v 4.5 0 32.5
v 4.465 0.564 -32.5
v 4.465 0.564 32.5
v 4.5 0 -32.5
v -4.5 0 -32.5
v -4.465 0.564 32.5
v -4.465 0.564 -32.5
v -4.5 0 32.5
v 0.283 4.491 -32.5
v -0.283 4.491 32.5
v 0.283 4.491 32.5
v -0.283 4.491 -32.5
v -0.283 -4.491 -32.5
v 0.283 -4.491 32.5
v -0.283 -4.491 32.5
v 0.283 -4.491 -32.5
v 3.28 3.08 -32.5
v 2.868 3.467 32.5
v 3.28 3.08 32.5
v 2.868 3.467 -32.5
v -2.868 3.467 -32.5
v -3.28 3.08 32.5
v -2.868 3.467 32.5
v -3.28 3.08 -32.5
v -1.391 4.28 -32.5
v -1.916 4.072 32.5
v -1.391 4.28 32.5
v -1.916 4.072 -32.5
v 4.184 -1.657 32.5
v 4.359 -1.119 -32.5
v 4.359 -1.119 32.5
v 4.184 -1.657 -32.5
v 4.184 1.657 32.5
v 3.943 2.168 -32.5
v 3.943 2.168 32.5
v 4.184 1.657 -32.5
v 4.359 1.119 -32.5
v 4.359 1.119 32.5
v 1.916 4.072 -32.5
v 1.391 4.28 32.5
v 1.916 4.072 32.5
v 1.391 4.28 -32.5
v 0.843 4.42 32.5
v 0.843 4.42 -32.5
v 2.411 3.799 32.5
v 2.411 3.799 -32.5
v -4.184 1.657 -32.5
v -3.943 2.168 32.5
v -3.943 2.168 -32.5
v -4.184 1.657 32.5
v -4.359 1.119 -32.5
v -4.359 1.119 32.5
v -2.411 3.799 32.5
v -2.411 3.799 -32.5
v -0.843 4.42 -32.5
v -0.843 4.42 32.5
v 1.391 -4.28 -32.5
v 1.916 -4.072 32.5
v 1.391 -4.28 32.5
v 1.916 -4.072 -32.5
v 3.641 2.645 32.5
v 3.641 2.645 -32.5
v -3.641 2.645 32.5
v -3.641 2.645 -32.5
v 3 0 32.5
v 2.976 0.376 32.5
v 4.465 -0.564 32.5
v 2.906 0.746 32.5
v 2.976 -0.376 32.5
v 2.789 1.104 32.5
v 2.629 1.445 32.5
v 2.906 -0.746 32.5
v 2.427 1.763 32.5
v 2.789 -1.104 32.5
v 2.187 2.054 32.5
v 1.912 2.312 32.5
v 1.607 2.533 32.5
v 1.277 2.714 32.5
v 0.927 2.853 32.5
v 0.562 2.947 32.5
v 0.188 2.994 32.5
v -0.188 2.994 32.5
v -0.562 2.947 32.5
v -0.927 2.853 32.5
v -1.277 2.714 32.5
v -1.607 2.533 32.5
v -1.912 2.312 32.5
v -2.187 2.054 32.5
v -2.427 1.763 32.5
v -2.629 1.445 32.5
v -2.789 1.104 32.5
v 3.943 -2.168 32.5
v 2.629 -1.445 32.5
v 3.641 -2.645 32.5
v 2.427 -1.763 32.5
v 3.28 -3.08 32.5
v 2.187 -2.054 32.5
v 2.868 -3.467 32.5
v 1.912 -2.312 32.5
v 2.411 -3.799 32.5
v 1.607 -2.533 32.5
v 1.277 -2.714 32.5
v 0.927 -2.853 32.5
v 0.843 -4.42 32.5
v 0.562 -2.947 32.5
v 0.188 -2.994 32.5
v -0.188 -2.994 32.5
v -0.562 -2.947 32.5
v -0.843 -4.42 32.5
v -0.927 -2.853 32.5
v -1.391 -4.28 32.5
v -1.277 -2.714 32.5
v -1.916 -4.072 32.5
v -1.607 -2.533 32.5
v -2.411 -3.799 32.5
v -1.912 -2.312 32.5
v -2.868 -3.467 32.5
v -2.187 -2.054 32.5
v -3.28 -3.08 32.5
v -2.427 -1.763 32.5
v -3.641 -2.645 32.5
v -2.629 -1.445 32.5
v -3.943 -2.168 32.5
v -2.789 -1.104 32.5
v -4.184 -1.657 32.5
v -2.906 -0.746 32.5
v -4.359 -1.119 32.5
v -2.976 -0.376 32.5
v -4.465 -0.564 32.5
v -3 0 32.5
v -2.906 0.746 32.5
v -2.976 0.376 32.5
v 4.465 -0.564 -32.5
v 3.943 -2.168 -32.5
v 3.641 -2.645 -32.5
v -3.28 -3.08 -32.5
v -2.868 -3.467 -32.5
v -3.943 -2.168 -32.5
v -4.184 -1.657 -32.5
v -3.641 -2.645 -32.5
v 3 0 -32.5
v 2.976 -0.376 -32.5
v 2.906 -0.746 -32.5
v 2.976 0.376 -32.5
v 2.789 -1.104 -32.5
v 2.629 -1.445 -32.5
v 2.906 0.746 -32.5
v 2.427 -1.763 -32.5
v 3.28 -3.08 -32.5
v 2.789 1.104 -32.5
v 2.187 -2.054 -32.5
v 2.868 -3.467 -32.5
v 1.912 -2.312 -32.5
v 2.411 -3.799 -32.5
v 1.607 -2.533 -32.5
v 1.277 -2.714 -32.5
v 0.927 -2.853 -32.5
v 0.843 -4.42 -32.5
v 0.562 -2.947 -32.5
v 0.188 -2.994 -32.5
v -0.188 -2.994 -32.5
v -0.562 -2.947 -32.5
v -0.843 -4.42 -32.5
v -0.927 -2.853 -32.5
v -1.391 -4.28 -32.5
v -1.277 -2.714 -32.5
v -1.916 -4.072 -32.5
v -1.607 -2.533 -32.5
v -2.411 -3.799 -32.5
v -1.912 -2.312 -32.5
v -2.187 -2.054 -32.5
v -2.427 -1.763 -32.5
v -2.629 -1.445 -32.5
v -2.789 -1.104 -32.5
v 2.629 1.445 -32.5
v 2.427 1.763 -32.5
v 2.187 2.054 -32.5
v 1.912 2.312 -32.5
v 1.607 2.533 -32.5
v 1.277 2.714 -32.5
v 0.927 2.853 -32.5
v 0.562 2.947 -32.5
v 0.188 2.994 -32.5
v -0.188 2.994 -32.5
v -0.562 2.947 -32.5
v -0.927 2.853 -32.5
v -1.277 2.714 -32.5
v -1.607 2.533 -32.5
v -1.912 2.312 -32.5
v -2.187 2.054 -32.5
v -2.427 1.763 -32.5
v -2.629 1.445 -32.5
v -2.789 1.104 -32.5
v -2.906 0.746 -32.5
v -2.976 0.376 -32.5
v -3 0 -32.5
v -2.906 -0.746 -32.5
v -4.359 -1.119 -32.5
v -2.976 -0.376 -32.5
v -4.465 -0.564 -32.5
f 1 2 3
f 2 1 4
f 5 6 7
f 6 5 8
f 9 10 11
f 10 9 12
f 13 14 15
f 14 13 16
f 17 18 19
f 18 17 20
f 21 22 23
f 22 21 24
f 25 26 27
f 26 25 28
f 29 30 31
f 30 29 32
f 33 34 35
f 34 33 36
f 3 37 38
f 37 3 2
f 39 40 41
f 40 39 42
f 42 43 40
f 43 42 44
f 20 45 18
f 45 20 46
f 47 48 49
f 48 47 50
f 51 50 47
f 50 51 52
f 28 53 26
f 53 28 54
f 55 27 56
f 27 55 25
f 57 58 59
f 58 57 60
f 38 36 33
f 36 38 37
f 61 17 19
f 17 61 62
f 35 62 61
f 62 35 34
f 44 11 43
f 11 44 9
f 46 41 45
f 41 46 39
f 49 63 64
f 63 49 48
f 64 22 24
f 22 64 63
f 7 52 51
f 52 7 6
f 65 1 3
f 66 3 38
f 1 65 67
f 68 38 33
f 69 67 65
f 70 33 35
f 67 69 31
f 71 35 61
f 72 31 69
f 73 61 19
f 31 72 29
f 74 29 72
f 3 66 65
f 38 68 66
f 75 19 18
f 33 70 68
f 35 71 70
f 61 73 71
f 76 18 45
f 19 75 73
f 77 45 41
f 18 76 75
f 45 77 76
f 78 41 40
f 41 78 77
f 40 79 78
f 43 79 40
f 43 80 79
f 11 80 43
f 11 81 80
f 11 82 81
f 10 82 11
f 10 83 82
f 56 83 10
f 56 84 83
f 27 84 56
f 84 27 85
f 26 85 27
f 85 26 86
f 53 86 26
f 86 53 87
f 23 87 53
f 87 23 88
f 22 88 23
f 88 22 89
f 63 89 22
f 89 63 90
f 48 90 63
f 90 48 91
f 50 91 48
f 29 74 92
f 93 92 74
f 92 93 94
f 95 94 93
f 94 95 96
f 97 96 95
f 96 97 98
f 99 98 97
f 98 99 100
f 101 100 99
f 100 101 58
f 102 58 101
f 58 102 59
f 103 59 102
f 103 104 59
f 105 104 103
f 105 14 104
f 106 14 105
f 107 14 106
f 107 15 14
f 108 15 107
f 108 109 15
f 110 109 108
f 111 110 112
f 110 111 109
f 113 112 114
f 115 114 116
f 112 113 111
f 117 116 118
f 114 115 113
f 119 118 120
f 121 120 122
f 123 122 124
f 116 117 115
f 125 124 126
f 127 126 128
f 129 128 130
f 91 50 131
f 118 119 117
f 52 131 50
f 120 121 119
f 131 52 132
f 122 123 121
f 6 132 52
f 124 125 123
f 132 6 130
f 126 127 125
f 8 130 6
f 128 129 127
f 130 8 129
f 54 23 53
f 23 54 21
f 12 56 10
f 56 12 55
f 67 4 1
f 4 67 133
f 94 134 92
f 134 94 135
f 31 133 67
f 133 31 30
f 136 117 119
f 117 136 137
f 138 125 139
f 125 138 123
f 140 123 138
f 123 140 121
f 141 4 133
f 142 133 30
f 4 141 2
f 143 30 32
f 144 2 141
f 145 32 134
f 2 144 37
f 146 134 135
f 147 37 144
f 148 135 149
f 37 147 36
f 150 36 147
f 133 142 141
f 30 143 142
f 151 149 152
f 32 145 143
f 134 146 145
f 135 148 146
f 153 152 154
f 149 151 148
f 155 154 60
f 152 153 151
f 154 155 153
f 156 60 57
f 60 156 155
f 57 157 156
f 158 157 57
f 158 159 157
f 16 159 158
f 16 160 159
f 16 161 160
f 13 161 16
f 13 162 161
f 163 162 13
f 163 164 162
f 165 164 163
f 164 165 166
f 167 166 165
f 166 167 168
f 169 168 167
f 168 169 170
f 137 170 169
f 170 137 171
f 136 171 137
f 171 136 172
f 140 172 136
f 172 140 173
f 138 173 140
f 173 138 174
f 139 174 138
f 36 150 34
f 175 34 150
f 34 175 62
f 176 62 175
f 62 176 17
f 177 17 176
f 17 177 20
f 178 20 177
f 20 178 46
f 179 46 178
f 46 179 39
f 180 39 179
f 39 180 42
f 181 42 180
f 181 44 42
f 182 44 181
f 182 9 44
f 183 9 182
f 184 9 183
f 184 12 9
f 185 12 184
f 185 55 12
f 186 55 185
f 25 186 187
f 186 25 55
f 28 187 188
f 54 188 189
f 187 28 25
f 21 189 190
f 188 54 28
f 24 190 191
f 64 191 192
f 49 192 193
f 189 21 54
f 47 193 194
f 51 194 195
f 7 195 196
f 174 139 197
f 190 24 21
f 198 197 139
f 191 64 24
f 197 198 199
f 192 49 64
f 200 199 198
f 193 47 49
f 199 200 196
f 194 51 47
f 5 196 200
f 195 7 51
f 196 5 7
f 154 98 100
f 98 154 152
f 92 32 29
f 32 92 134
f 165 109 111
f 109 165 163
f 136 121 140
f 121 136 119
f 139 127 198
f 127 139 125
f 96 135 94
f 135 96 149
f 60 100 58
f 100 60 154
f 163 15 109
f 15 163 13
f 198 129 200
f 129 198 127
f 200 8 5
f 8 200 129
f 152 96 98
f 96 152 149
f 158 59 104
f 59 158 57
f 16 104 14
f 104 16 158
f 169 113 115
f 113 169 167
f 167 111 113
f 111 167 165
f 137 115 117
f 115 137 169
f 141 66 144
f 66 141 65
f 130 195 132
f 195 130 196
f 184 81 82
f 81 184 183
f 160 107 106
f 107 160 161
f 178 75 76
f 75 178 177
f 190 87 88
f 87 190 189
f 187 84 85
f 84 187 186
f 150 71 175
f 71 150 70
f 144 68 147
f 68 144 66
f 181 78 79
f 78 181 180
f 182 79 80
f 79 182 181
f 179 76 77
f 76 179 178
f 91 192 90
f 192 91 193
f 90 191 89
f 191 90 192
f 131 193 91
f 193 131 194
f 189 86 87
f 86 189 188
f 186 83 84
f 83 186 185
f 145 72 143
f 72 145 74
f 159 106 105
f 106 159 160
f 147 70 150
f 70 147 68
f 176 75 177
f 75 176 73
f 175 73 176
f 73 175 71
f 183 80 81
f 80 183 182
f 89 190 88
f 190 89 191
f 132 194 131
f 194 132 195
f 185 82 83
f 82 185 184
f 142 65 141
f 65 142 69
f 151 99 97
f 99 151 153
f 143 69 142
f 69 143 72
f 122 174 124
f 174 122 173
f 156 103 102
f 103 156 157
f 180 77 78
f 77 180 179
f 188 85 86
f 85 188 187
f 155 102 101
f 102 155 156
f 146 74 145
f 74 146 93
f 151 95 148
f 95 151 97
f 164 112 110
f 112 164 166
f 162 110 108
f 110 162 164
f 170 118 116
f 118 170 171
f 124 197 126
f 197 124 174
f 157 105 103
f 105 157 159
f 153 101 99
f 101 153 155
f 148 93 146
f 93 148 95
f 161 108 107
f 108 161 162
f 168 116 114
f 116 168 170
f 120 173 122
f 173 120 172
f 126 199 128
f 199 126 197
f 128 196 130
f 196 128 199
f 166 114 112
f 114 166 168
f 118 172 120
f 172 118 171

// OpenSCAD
$fn = 50;


difference() {
	union() {
		translate(v = [0, 0, -32.5000000000]) {
			cylinder(h = 65, r = 4.5000000000);
		}
	}
	union() {
		translate(v = [0, 0, -100.0000000000]) {
			cylinder(h = 200, r = 3.0000000000);
		}
	}
}
